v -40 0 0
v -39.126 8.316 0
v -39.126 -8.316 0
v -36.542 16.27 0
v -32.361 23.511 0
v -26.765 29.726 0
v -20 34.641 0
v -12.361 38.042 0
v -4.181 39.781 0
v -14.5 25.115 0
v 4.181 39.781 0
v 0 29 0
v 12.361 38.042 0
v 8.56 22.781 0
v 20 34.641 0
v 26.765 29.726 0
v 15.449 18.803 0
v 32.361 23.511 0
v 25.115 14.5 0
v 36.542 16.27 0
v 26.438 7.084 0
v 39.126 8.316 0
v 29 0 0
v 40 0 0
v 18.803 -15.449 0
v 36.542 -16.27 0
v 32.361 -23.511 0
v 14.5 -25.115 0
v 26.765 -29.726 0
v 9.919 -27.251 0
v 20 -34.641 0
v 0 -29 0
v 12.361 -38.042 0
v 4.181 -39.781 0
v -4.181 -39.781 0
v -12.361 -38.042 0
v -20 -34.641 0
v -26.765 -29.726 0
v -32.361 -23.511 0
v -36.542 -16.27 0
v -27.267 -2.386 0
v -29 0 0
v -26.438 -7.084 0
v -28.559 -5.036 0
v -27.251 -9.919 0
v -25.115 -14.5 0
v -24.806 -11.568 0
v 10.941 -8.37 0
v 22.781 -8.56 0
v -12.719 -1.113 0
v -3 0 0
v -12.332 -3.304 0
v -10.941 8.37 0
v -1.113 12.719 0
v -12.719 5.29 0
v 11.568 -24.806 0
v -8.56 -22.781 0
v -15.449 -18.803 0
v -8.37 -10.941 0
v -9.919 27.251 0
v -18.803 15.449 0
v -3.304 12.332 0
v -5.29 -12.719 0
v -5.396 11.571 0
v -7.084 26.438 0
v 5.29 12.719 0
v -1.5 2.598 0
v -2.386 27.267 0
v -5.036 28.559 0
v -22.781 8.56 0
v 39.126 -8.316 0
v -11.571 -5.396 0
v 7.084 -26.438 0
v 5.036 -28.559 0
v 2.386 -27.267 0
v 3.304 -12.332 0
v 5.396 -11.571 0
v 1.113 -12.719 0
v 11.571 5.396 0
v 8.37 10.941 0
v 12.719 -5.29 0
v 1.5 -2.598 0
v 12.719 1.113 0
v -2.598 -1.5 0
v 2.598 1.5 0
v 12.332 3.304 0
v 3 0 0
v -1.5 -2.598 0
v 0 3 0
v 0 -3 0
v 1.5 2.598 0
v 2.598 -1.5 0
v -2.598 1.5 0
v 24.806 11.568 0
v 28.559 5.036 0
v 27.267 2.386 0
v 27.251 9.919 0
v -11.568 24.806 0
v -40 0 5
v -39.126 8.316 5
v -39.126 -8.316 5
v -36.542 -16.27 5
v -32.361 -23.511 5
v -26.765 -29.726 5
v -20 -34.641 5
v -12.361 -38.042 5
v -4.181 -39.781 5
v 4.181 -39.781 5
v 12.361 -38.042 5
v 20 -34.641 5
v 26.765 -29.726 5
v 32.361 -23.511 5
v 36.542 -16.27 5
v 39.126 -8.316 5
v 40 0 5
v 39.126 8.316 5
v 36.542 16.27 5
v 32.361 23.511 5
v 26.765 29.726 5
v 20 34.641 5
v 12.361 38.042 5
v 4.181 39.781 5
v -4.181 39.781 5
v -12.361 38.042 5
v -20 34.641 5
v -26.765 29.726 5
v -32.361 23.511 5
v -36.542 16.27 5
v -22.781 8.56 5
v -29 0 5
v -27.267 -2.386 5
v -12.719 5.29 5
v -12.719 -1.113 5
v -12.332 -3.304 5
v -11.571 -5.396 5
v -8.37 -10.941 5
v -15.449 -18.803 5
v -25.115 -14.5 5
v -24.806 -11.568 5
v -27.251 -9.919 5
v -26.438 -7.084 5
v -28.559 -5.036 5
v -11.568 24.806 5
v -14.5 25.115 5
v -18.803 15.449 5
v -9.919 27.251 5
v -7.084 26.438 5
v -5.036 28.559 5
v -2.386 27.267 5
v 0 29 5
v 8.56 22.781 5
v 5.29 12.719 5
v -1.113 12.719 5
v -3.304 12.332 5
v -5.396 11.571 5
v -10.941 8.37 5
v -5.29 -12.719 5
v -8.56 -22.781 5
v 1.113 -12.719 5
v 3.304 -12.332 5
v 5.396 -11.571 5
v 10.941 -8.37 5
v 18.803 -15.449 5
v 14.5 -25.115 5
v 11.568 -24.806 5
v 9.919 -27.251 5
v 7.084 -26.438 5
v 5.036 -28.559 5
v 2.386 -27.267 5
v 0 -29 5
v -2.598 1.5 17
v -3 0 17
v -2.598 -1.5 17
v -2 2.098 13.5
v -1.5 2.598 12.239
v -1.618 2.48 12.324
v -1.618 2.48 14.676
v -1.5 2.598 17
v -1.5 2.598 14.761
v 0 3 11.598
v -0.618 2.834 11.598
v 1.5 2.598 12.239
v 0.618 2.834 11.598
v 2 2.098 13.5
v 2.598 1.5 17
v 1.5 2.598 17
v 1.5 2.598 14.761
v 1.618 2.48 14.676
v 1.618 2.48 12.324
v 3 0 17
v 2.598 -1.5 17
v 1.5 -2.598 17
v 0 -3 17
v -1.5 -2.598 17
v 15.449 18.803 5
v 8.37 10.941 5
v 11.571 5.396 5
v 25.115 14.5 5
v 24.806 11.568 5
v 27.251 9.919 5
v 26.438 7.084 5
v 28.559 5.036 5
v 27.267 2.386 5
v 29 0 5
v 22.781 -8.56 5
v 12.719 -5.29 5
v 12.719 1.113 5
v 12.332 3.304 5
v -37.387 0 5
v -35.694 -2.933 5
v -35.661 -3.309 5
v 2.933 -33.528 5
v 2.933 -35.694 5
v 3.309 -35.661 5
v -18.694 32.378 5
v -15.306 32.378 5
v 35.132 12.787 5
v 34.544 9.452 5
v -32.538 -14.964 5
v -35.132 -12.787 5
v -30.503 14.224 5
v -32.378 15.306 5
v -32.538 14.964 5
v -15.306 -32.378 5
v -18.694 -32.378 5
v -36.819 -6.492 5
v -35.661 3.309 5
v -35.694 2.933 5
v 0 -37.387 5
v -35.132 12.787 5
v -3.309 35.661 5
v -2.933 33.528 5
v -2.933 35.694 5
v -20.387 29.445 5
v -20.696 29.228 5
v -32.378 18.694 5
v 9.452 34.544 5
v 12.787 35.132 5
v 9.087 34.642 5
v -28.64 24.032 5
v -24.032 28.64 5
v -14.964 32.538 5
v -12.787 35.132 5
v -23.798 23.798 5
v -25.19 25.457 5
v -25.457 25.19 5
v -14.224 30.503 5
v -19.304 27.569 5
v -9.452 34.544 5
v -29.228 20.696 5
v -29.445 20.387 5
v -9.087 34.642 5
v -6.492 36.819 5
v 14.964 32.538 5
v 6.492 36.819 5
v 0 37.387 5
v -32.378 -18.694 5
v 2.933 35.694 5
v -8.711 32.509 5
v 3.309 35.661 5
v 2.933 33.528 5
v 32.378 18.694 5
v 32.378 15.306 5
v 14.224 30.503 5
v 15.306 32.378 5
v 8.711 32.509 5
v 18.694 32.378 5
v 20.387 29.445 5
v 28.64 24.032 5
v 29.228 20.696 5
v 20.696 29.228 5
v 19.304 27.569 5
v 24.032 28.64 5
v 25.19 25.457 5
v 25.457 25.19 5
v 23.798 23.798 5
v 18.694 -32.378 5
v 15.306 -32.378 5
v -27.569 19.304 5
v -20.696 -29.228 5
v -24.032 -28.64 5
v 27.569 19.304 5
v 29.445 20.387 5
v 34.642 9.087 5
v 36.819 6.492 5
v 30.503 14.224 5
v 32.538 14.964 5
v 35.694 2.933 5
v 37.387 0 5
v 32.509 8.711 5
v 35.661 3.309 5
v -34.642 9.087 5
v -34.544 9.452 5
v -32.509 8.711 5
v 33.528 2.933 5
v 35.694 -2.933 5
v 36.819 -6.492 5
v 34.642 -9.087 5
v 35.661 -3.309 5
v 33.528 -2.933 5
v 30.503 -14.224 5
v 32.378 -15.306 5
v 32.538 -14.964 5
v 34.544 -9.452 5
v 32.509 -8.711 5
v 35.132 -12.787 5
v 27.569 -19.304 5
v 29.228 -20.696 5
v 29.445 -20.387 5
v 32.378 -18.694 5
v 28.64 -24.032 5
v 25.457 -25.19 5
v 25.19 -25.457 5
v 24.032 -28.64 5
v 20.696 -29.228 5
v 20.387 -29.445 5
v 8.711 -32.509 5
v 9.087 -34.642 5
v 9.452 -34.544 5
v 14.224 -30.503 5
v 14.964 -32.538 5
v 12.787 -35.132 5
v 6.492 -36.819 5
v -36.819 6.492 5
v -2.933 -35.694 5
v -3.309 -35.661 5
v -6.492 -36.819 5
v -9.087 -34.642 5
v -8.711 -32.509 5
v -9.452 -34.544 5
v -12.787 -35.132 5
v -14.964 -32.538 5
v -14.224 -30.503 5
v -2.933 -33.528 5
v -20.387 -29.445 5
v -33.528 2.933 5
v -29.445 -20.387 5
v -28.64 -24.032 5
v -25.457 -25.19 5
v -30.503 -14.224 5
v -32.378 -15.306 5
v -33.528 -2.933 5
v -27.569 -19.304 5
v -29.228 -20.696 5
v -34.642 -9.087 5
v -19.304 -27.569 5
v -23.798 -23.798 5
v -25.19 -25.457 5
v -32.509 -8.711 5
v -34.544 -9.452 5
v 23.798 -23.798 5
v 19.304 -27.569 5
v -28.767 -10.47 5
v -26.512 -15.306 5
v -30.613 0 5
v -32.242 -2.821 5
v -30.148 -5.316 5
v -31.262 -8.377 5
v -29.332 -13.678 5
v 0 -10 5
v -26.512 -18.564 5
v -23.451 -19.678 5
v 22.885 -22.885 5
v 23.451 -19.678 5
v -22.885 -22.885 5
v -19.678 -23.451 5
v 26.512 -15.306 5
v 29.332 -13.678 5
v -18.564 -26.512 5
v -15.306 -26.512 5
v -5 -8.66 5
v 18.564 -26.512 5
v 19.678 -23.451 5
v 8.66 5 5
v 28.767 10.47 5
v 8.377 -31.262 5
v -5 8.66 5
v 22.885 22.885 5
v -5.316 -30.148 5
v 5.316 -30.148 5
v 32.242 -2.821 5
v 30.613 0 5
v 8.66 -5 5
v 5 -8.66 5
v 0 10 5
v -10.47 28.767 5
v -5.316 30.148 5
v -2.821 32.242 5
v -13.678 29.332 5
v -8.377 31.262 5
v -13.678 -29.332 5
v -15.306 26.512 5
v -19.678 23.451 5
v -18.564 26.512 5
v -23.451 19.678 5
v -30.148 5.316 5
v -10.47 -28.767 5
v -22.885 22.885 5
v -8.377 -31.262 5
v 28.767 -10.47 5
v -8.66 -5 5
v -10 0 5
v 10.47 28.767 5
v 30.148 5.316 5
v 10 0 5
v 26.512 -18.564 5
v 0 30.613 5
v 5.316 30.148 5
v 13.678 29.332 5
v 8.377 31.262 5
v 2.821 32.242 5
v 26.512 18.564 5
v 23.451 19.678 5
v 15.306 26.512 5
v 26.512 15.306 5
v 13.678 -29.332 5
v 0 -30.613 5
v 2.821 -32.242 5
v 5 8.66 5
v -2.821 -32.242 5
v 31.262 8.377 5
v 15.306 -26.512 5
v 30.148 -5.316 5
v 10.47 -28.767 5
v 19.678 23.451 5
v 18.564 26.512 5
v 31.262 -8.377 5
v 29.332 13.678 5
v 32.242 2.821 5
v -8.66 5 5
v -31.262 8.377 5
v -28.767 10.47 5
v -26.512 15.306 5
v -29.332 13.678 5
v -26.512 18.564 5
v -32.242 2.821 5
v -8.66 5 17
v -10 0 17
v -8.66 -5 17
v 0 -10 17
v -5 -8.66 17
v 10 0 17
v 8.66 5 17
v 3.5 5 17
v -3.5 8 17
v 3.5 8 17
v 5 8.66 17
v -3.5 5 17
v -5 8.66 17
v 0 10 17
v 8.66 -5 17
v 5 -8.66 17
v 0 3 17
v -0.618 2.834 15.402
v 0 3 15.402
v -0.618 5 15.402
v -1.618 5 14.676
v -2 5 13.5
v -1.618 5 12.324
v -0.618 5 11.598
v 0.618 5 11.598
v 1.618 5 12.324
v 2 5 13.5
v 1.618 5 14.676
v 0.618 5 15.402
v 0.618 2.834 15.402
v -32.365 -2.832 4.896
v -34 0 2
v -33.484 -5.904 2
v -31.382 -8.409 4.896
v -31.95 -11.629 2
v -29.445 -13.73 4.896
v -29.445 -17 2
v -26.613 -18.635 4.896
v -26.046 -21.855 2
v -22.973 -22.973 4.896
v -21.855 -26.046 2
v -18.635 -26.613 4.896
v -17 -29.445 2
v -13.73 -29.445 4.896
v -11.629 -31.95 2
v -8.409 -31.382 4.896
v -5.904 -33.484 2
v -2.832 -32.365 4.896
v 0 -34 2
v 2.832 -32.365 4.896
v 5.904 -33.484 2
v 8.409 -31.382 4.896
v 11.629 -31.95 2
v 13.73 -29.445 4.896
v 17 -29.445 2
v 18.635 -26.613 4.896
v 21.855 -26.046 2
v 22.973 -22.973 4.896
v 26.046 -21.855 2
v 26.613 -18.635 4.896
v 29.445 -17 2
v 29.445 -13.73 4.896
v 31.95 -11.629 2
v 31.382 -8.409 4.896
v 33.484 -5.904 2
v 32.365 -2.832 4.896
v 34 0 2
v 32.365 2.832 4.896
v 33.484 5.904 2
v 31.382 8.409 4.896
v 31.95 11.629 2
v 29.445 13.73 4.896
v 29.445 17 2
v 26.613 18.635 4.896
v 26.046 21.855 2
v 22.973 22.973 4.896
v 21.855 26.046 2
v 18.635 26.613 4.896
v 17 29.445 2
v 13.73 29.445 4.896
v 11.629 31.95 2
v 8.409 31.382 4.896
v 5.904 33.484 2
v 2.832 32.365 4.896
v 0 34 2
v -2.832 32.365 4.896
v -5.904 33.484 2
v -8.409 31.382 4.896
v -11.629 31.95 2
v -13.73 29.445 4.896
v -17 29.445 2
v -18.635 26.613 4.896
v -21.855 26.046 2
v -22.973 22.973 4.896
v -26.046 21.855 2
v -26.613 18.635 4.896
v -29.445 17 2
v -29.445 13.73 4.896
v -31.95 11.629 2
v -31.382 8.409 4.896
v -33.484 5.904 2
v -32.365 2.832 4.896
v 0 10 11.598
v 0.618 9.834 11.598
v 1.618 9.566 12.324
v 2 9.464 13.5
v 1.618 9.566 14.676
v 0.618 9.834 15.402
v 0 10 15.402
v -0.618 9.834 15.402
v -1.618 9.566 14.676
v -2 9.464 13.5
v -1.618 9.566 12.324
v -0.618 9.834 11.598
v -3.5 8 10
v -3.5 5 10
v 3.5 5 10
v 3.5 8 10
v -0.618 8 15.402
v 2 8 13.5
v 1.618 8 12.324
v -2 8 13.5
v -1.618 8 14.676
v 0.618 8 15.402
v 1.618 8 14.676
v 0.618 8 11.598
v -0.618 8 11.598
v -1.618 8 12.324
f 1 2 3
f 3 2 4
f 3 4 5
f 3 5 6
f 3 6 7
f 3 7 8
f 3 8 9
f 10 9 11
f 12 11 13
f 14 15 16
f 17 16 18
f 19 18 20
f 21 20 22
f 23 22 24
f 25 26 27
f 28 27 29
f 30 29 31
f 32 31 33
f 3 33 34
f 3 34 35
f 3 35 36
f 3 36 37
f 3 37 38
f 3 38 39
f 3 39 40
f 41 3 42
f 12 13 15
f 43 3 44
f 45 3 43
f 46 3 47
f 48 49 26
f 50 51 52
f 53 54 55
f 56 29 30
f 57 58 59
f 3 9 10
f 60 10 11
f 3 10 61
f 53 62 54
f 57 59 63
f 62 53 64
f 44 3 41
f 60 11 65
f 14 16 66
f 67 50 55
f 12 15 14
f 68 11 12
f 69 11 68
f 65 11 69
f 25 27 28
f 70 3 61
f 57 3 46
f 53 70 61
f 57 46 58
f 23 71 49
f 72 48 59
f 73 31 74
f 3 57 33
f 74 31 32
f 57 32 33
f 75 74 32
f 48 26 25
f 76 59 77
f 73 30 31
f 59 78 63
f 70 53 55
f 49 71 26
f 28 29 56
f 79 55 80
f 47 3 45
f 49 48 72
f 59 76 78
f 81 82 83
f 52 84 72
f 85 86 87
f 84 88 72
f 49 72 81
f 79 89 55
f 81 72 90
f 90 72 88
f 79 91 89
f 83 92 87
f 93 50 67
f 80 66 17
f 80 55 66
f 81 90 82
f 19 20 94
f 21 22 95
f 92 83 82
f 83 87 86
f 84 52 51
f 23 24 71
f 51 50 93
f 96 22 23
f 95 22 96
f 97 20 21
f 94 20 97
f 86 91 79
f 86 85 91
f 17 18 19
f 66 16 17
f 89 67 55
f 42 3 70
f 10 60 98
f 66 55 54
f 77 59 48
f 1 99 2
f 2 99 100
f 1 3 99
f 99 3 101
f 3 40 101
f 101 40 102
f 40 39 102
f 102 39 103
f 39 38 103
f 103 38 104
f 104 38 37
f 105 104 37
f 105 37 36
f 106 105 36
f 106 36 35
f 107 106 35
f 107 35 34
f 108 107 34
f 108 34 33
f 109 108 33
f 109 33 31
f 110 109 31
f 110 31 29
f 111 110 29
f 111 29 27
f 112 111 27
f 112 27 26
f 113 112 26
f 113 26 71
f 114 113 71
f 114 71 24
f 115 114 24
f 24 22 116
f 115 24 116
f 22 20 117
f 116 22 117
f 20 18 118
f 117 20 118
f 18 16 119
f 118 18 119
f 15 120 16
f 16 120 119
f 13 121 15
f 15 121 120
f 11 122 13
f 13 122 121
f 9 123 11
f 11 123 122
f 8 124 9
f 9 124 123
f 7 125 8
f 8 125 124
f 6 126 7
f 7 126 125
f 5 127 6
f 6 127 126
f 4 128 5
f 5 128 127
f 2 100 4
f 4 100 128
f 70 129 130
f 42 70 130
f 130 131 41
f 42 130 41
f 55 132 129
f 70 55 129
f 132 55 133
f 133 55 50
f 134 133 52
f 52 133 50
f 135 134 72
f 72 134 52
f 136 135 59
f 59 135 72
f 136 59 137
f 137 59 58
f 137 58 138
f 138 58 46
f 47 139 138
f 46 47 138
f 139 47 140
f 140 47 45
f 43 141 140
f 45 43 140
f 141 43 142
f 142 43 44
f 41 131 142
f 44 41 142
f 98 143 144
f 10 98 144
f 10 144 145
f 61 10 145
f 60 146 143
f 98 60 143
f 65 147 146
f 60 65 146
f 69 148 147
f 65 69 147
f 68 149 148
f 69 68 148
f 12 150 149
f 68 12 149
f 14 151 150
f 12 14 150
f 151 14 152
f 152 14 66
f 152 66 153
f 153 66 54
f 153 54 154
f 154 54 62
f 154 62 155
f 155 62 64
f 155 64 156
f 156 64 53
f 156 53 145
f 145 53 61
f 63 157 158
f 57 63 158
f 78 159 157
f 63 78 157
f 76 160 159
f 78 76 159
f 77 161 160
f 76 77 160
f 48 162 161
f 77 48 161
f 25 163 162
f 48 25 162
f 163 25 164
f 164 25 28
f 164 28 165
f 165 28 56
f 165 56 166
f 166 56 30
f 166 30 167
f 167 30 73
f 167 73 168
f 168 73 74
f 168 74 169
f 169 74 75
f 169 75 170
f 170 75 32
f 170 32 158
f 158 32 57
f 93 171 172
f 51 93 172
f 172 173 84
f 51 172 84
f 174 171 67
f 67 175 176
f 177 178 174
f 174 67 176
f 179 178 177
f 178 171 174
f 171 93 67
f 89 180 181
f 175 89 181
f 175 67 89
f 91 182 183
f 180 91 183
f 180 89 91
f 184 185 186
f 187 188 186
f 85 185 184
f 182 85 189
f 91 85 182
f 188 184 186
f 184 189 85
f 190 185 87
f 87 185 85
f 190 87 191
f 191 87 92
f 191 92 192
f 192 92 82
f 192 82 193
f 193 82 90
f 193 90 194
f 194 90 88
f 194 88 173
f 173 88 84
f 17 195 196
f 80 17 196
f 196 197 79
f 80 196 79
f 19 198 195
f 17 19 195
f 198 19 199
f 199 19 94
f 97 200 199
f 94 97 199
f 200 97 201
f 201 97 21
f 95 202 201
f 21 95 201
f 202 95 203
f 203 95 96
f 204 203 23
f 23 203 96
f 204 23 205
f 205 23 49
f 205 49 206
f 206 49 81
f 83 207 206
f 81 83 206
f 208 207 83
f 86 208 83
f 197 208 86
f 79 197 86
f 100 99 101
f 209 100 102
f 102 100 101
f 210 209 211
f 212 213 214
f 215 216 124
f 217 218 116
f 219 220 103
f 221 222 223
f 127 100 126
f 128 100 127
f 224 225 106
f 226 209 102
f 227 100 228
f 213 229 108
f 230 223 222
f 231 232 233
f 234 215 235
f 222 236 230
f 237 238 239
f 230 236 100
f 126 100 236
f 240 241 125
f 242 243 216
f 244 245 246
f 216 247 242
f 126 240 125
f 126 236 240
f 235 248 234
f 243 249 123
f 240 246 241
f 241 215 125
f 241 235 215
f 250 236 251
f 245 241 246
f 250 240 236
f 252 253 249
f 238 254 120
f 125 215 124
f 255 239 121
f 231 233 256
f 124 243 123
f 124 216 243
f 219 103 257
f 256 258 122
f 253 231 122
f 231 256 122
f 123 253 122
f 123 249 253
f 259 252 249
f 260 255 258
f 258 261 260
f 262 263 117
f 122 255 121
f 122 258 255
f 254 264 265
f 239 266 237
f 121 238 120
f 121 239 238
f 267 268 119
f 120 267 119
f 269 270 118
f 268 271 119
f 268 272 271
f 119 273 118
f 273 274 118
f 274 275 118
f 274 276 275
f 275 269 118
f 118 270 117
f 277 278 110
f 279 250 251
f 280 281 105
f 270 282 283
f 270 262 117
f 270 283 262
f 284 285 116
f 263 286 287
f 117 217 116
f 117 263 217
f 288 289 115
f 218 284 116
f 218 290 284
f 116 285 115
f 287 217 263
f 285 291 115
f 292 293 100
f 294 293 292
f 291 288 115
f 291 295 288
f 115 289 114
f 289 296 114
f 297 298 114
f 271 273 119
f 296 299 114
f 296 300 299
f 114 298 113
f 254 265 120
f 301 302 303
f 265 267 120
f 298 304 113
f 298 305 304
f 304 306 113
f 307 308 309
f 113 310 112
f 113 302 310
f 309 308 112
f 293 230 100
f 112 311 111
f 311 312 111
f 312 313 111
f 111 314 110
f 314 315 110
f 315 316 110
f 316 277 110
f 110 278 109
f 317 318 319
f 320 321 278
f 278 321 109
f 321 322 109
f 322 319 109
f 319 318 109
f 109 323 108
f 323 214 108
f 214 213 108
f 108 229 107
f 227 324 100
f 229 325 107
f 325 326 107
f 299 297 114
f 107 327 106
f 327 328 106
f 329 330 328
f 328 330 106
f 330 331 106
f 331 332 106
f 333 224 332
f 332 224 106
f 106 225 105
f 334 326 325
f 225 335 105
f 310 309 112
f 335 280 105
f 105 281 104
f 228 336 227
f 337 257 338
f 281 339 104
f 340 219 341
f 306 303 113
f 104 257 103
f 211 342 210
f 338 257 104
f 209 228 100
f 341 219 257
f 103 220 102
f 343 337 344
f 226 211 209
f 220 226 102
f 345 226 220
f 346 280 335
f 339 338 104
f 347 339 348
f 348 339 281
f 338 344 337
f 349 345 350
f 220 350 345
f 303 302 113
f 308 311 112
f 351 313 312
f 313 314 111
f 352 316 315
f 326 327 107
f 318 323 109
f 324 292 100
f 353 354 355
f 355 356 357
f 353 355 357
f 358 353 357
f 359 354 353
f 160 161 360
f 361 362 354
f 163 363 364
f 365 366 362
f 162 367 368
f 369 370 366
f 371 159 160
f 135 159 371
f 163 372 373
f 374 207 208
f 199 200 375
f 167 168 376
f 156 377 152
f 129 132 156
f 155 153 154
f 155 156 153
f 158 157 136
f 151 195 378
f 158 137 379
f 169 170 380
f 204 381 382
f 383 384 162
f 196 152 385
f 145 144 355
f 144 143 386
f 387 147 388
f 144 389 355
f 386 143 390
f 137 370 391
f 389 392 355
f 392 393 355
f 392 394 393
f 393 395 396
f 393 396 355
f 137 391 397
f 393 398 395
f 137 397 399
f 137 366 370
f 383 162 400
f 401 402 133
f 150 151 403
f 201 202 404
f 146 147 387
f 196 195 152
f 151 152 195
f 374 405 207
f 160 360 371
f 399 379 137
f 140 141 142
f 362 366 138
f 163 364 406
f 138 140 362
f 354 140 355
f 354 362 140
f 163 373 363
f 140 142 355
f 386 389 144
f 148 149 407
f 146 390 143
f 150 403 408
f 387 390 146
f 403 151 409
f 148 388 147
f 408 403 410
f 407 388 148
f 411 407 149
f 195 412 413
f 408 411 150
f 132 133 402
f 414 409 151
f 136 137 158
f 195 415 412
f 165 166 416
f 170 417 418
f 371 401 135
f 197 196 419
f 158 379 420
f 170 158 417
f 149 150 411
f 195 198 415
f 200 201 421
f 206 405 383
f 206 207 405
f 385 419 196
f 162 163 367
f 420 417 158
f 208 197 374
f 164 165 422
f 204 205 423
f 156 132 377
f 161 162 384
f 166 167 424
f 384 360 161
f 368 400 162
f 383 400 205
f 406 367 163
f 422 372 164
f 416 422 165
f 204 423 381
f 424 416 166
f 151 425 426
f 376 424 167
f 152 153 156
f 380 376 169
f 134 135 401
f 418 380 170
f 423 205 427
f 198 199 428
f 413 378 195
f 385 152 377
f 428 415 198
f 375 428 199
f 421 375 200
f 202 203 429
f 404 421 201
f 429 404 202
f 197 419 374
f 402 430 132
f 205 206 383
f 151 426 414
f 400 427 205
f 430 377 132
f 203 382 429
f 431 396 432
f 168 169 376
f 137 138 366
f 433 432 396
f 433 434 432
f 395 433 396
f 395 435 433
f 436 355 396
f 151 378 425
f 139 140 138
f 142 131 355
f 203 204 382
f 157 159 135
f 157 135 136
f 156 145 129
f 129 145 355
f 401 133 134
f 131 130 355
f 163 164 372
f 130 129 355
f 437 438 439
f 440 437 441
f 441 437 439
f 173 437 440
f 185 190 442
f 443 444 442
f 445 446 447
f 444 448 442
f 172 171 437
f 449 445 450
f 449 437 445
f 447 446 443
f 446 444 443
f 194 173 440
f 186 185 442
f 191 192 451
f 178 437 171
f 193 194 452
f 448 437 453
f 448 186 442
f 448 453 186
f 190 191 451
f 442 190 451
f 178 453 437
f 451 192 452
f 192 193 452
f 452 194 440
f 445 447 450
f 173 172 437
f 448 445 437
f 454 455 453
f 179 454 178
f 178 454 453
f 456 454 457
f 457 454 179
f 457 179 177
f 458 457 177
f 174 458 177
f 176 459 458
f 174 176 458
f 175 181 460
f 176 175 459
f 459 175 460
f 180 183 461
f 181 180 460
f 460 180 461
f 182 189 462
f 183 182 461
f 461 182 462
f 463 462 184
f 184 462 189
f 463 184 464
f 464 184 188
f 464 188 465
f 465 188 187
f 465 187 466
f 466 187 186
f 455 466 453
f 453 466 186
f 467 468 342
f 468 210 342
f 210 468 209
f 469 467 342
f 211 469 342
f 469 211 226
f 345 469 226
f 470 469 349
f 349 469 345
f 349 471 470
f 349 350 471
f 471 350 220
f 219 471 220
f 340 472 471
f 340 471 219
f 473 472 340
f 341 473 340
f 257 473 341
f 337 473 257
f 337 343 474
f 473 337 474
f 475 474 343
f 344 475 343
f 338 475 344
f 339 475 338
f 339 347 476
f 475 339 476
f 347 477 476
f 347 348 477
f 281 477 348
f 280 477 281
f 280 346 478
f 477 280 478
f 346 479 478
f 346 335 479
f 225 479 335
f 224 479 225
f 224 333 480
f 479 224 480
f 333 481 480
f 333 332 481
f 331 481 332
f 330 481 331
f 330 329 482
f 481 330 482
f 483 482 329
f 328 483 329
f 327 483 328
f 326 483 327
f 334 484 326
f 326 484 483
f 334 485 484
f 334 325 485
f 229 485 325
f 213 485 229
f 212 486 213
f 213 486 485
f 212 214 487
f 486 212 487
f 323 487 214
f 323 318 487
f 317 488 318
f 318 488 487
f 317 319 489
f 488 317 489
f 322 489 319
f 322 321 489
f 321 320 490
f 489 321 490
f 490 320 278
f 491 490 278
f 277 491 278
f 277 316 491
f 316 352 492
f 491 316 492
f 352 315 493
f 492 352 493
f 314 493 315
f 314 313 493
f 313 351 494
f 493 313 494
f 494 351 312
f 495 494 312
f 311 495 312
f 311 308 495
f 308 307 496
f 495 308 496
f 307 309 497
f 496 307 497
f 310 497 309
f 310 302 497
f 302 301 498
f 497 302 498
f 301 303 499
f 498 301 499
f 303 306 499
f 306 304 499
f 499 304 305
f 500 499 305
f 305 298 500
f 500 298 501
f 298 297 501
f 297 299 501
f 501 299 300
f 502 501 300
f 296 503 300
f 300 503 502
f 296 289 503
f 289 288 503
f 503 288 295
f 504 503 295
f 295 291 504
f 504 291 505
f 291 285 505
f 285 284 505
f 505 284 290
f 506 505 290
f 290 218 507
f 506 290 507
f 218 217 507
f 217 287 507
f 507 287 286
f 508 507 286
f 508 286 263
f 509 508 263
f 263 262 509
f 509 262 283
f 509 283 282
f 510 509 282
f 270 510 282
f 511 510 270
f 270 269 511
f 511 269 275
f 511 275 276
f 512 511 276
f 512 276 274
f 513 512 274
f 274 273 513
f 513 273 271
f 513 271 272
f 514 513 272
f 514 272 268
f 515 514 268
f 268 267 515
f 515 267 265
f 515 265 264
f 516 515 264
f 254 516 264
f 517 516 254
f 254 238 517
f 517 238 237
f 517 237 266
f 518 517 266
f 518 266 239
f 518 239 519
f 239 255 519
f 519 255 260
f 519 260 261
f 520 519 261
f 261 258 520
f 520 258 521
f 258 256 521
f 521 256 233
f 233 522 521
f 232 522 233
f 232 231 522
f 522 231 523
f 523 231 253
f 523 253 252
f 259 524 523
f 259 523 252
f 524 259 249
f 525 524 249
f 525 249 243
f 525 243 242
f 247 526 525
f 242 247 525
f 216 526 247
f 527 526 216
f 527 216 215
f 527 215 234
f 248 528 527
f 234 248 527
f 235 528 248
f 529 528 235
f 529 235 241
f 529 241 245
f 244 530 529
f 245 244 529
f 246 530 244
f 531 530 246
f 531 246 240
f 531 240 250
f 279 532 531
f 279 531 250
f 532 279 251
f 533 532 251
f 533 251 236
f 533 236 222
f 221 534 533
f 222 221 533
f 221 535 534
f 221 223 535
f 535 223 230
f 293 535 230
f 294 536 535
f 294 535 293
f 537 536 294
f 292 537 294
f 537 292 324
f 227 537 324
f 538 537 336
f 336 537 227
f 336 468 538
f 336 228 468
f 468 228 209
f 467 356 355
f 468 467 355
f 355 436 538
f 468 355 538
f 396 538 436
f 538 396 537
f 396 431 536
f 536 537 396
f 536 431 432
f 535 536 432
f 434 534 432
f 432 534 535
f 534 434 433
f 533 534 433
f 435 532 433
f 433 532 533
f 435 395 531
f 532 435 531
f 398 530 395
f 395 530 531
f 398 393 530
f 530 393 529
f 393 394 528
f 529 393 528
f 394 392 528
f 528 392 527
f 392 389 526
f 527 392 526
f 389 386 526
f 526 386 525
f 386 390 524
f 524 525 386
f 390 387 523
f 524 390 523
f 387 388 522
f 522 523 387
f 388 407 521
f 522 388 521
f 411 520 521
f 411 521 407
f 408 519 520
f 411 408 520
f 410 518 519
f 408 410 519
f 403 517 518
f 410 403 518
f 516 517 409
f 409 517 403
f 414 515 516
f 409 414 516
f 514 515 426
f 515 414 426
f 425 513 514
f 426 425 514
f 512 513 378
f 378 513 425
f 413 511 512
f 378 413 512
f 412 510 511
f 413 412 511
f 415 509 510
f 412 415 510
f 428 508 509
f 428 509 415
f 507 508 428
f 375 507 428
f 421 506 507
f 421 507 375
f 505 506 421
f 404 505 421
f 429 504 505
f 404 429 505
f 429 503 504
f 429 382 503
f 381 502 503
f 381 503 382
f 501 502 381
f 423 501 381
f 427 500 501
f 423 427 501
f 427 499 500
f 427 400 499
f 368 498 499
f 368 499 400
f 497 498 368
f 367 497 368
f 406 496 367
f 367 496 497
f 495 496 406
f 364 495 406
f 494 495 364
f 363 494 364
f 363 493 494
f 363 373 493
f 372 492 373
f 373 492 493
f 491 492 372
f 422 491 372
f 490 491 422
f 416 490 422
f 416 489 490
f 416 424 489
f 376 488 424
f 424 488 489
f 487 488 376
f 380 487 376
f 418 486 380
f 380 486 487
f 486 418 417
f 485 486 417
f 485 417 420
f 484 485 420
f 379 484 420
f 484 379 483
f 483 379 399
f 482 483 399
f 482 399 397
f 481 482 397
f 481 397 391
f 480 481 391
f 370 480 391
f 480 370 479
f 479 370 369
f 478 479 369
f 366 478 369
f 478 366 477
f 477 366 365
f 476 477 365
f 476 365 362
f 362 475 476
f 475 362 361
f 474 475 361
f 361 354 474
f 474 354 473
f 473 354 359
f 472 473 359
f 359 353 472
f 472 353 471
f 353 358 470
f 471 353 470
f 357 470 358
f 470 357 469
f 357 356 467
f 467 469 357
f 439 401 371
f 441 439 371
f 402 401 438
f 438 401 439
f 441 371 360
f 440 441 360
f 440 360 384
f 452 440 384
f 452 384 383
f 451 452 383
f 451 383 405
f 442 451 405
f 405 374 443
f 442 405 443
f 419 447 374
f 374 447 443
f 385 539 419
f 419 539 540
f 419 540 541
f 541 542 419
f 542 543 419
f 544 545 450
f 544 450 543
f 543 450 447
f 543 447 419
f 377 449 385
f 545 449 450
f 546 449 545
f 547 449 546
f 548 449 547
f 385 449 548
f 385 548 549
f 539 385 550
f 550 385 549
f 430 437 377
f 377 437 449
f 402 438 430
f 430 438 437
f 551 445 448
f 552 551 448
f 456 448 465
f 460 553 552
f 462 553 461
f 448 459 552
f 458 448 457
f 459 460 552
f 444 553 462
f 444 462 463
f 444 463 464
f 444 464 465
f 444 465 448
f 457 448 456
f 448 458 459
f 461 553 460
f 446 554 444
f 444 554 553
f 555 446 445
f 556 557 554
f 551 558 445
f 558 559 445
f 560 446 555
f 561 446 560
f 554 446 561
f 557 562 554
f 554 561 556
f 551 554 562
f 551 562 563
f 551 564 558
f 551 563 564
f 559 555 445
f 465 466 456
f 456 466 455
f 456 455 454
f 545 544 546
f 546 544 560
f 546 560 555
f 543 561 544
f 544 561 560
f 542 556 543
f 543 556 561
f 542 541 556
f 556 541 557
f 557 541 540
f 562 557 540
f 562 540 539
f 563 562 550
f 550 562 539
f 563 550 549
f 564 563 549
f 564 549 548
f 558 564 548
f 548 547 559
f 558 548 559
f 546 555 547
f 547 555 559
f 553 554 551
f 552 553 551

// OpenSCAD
diametro=80; //margen 70-80
altura=5; //minimo 4
eje=6; //eje del motor

difference(){
	difference(){
		difference(){
			cylinder (r=diametro/2, h=altura, $fn=30);
			for (i=[1:36]){
				rotate ([0,0,i*10])
					translate ([diametro/2-6,0,altura-3])
						cylinder (h=3.1, r1=0, r2=3.5, $fn=6);
			}
		}

		for (i=[0:3]){
			rotate ([0,0,i*10+360/4])
				translate ([diametro/4,0,-2])
					cylinder (r=9, h=altura+10, $fn=5);
		}
		for (i=[0:3]){
			rotate ([0,0,i*10+360/4+360/4])
				translate ([diametro/4,0,-2])
					cylinder (r=9, h=altura+10, $fn=5);
		}
		for (i=[0:3]){
			rotate ([0,0,i*10+360/4+360/4+360/4])
				translate ([diametro/4,0,-2])
					cylinder (r=9, h=altura+10, $fn=5);
		}
		for (i=[0:3]){
			rotate ([0,0,i*10+360/4+360/4+360/4+360/4])
				translate ([diametro/4,0,-2])
					cylinder (r=9, h=altura+10, $fn=5);
		}
	}
	translate ([0,0,-2])
		cylinder (r=7/2, h=altura+20, $fn=10);
}


//CUERPO DEL EJE
difference(){
cylinder (r=20/2, h=altura+12, $fn=12);
translate ([0,0,-2])
	cylinder (r=eje/2, h=altura+25, $fn=12);
translate ([-3.5,5,10])
	cube([7,3,20]);
translate([0,20,13.5])
	rotate ([90,0,0])
		cylinder (r=4/2, h=20, $fn=10);
}
